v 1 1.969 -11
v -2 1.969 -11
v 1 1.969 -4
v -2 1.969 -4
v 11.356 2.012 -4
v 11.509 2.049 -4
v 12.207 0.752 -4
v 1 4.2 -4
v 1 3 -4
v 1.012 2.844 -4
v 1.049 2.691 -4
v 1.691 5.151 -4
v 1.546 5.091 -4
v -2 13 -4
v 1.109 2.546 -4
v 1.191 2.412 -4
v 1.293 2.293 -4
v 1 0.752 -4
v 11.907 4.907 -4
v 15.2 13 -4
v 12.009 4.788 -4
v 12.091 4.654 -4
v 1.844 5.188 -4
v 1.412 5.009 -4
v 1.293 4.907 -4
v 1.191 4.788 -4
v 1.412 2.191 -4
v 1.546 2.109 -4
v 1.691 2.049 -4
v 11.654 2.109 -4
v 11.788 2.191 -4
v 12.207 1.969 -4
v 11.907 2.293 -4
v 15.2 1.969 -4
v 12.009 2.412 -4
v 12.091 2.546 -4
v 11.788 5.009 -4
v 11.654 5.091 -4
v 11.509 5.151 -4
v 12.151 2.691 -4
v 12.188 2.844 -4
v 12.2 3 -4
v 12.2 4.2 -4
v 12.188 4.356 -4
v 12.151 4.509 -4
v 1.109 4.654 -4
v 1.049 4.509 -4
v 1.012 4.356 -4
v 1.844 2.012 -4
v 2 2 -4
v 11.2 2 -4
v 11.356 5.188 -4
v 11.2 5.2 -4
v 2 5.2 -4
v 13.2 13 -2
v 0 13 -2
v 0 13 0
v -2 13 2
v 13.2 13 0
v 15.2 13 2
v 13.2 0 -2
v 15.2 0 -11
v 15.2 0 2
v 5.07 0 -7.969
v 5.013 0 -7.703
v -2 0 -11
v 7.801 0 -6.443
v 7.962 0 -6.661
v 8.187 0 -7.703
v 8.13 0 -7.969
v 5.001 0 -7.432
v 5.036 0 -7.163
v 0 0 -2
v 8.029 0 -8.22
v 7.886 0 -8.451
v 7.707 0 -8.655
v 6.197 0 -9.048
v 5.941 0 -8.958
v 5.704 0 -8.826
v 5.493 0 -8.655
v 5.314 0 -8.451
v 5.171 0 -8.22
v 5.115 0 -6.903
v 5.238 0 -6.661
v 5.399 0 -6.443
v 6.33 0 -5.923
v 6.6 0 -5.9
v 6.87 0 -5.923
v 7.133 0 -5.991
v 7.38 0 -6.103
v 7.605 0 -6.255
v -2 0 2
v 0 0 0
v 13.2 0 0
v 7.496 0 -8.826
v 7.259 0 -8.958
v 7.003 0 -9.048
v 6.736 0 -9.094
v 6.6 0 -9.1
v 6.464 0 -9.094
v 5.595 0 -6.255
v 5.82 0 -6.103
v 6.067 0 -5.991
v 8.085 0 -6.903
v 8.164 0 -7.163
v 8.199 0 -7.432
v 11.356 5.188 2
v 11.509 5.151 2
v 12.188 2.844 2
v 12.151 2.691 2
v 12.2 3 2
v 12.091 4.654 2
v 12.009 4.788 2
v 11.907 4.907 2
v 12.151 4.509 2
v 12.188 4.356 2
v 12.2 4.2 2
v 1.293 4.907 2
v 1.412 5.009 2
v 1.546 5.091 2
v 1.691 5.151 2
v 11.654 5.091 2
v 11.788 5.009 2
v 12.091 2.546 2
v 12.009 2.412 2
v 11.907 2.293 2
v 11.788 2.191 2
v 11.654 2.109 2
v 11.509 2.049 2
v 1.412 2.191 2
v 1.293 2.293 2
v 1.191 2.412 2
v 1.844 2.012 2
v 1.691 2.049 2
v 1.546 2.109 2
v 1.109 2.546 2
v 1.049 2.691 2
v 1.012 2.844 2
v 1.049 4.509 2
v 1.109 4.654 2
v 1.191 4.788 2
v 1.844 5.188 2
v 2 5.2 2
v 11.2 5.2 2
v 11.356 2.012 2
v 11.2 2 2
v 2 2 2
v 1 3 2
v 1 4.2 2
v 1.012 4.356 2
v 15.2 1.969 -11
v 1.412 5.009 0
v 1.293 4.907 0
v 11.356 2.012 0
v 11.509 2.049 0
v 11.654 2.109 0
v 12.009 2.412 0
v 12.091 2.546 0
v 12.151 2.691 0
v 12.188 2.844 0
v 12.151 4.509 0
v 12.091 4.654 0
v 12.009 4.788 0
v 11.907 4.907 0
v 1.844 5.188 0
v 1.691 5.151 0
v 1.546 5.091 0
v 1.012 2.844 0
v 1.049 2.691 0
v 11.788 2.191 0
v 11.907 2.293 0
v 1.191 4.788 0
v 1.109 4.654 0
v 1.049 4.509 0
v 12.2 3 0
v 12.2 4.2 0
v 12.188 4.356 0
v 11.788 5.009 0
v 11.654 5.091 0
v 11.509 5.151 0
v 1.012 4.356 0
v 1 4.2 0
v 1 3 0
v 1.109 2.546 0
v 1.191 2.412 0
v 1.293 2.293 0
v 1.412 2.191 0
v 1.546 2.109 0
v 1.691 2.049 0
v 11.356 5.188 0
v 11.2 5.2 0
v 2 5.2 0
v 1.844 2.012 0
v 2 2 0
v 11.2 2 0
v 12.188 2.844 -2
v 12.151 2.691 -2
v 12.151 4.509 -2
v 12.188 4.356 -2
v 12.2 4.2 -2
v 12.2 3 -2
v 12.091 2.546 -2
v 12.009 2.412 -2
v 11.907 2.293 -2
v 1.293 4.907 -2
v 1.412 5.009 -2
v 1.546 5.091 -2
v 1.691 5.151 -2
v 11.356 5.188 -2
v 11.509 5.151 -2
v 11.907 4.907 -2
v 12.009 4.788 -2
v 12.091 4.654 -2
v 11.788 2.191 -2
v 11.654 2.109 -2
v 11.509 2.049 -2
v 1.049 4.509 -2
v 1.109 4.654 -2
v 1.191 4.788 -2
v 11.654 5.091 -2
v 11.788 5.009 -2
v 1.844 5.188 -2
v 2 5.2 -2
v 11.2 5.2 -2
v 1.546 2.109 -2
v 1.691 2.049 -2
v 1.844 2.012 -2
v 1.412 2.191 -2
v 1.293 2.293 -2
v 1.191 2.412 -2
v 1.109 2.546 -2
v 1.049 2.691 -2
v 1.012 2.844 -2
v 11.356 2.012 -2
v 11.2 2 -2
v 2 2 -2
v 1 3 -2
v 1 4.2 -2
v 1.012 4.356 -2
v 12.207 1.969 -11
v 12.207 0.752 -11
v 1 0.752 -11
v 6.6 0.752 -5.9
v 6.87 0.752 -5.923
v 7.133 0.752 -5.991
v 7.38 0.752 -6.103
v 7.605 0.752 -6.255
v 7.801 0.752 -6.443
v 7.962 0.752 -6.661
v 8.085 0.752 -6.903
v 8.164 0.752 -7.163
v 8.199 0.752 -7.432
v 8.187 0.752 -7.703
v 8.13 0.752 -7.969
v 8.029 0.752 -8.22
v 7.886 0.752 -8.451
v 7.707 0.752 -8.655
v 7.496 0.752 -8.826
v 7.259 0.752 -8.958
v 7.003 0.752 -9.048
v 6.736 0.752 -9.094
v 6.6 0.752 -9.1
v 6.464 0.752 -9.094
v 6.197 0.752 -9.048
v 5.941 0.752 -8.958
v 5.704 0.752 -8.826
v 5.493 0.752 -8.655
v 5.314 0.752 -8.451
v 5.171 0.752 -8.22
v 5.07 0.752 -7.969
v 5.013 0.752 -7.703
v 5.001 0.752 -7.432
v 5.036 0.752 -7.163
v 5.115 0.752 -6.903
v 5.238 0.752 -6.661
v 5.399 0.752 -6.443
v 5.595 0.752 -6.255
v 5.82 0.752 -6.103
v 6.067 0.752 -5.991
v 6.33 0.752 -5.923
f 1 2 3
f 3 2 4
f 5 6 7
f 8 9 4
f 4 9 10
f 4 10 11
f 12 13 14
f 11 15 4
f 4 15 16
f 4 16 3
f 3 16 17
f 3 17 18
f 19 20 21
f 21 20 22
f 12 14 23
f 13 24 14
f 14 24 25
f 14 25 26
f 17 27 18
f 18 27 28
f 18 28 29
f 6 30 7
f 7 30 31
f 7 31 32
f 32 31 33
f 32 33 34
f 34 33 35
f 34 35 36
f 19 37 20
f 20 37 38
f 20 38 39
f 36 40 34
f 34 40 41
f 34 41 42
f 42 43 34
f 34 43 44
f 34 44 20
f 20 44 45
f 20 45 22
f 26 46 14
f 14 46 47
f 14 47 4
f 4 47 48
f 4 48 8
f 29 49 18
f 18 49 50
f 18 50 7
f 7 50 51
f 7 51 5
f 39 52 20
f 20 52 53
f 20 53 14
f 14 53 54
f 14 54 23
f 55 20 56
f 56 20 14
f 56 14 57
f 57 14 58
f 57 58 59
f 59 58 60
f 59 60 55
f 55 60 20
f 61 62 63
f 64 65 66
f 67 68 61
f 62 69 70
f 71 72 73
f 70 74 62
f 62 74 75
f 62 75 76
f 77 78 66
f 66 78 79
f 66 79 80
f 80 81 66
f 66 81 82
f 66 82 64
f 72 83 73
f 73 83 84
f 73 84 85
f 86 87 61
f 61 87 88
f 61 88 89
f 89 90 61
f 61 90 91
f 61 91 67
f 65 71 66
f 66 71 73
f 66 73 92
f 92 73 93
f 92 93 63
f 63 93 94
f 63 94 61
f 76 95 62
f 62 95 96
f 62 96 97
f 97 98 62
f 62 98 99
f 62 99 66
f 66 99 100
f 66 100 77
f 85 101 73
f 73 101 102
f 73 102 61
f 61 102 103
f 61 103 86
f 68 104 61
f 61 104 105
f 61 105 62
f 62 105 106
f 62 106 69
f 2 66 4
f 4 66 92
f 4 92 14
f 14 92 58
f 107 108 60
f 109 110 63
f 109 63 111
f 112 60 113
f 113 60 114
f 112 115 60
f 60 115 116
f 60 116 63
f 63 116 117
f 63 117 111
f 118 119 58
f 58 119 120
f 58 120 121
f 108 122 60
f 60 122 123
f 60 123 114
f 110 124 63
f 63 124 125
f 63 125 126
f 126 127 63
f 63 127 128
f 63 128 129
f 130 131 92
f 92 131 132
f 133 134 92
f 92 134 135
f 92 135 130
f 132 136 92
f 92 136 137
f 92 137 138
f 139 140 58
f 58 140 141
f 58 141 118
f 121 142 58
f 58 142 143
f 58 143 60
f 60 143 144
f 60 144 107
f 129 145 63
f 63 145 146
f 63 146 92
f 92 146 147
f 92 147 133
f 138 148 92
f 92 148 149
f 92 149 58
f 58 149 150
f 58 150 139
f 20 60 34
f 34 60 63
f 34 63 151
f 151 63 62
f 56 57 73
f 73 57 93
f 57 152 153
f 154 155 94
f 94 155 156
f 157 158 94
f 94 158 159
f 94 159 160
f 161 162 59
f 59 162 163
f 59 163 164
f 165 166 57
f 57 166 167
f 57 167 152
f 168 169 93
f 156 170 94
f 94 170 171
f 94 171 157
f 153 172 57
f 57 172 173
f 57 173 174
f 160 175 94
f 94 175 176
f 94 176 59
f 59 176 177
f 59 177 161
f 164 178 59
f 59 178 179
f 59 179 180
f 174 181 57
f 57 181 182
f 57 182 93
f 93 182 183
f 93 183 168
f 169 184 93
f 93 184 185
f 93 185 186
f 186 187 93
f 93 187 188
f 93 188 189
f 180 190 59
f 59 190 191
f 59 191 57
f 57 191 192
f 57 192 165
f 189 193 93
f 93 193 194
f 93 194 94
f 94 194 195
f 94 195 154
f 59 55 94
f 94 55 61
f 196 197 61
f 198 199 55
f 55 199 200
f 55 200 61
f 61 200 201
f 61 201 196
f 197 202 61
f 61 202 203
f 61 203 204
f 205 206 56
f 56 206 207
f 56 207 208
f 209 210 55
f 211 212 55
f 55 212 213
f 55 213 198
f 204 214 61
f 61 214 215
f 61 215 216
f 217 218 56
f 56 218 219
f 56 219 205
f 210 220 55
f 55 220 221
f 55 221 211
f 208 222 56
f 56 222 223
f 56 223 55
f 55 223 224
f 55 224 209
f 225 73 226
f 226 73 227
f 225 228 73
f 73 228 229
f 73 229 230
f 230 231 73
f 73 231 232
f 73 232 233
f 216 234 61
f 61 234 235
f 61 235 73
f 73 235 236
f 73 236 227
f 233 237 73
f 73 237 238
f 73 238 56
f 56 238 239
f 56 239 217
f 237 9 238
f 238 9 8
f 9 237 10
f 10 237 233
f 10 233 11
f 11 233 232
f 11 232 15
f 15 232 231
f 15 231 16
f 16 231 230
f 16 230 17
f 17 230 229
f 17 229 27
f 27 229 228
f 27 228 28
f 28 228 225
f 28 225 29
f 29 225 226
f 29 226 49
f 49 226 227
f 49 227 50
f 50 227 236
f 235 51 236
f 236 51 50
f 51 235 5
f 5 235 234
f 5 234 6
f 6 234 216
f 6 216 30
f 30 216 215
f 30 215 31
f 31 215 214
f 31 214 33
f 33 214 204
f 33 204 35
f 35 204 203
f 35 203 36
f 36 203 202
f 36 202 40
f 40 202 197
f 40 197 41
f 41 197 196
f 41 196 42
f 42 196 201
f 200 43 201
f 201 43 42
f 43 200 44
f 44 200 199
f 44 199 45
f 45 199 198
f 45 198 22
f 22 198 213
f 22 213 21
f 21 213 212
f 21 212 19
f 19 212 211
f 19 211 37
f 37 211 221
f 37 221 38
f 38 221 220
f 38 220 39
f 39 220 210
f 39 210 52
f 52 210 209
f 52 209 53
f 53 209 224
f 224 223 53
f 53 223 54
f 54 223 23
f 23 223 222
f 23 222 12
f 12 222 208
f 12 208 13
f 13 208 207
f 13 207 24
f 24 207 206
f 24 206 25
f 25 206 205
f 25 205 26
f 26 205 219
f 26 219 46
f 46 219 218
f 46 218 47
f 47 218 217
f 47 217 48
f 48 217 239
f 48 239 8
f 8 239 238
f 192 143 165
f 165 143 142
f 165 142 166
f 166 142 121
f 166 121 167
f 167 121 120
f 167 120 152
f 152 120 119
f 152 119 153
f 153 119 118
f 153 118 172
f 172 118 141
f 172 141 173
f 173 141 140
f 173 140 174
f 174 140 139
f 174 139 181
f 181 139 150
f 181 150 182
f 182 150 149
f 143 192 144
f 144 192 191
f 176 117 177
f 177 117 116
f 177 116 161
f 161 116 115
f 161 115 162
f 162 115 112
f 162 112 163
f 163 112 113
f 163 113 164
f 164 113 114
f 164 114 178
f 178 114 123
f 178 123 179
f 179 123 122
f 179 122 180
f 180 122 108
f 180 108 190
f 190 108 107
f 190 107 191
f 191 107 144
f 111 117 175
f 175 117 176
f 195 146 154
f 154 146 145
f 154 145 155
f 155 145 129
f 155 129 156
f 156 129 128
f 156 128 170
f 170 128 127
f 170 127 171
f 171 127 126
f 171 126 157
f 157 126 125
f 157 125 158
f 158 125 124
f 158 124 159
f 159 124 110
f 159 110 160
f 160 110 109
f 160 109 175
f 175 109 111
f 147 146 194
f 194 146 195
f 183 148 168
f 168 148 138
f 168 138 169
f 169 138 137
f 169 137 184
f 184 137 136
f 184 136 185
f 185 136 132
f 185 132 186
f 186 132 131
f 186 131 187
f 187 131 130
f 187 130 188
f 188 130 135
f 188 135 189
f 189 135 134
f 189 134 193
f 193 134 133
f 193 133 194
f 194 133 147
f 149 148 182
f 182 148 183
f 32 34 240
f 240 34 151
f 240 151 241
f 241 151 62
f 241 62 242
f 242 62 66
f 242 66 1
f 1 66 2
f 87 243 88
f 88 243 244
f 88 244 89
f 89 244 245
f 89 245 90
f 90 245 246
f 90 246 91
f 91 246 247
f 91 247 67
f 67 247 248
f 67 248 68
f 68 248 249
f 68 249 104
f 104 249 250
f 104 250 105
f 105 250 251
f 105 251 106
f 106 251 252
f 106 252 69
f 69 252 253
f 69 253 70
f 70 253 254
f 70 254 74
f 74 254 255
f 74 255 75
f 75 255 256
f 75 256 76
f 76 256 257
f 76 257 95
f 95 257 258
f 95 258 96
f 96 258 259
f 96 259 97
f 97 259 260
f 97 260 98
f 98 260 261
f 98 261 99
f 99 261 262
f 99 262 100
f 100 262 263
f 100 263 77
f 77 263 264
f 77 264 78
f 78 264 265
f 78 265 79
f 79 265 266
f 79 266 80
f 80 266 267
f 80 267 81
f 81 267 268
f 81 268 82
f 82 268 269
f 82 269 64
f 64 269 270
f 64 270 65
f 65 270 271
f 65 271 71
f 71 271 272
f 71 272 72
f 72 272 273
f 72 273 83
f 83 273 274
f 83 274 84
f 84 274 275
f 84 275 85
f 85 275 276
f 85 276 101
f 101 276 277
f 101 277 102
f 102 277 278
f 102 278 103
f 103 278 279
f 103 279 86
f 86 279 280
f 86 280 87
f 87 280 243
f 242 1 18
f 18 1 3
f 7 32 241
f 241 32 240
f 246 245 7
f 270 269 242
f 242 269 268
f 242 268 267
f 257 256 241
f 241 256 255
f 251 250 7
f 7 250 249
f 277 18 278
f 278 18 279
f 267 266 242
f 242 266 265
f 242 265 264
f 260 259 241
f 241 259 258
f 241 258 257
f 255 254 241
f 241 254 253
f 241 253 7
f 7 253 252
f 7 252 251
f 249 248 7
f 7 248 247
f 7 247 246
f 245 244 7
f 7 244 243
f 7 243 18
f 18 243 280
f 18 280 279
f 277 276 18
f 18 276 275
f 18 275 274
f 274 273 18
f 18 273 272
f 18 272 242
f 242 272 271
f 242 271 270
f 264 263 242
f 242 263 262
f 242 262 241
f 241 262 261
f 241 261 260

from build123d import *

# Parameters (mm, degrees)
SKETCH1_W           = 17.2
SKETCH1_H           = 6
SKETCH1_W_2         = 13.2
SKETCH1_H_2         = 2
BOSS_EXTRUDE1_DEPTH = 13
CUT_EXTRUDE1_DEPTH  = 13
SKETCH4_W           = 17.2
SKETCH4_H           = 1.968955047
BOSS_EXTRUDE2_DEPTH = 7
SKETCH5_R           = 1.6
CUT_EXTRUDE2_DEPTH  = 4
SKETCH6_W           = 11.206506984
SKETCH6_H           = 2.48590404
CUT_EXTRUDE3_DEPTH  = 7


with BuildPart() as part:
    # Sketch1 → Boss-Extrude1 (new body)
    with BuildSketch(Plane(origin=(0, 0, 0), x_dir=(1, 0, 0), z_dir=(0, 1, 0))):
        with Locations((6.6, 1)):
            Rectangle(SKETCH1_W, SKETCH1_H)
        with Locations((6.6, 1)):
            Rectangle(SKETCH1_W_2, SKETCH1_H_2, mode=Mode.SUBTRACT)
    extrude(amount=BOSS_EXTRUDE1_DEPTH)

    # Sketch2 → Cut-Extrude1 (cut)
    with BuildSketch(Plane.XY.offset(2)):
        with BuildLine():
            Line((2, 5.2), (11.2, 5.2))
            ThreePointArc((11.2, 5.2), (11.907106781, 4.907106781), (12.2, 4.2))
            Line((12.2, 4.2), (12.2, 3))
            ThreePointArc((12.2, 3), (11.907106781, 2.292893219), (11.2, 2))
            Line((11.2, 2), (2, 2))
            ThreePointArc((2, 2), (1.292893219, 2.292893219), (1, 3))
            Line((1, 3), (1, 4.2))
            ThreePointArc((1, 4.2), (1.292893219, 4.907106781), (2, 5.2))
        make_face()
    extrude(amount=-CUT_EXTRUDE1_DEPTH, mode=Mode.SUBTRACT)

    # Sketch4 → Boss-Extrude2 (add)
    with BuildSketch(Plane(origin=(0, 0, -4), x_dir=(-1, 0, 0), z_dir=(0, 0, -1))):
        with Locations((-6.6, 0.984477524)):
            Rectangle(SKETCH4_W, SKETCH4_H)
    extrude(amount=BOSS_EXTRUDE2_DEPTH)

    # Sketch5 → Cut-Extrude2 (cut)
    with BuildSketch(Plane(origin=(0, 1.968955047, 0), x_dir=(1, 0, 0), z_dir=(0, 1, 0))):
        with Locations((6.6, 7.5)):
            Circle(SKETCH5_R)
    extrude(amount=-CUT_EXTRUDE2_DEPTH, mode=Mode.SUBTRACT)

    # Sketch6 → Cut-Extrude3 (cut)
    with BuildSketch(Plane(origin=(0, 0, -11), x_dir=(-1, 0, 0), z_dir=(0, 0, -1))):
        with Locations((-6.603253492, 1.995400835)):
            Rectangle(SKETCH6_W, SKETCH6_H)
    extrude(amount=-CUT_EXTRUDE3_DEPTH, mode=Mode.SUBTRACT)


solid = part.part
